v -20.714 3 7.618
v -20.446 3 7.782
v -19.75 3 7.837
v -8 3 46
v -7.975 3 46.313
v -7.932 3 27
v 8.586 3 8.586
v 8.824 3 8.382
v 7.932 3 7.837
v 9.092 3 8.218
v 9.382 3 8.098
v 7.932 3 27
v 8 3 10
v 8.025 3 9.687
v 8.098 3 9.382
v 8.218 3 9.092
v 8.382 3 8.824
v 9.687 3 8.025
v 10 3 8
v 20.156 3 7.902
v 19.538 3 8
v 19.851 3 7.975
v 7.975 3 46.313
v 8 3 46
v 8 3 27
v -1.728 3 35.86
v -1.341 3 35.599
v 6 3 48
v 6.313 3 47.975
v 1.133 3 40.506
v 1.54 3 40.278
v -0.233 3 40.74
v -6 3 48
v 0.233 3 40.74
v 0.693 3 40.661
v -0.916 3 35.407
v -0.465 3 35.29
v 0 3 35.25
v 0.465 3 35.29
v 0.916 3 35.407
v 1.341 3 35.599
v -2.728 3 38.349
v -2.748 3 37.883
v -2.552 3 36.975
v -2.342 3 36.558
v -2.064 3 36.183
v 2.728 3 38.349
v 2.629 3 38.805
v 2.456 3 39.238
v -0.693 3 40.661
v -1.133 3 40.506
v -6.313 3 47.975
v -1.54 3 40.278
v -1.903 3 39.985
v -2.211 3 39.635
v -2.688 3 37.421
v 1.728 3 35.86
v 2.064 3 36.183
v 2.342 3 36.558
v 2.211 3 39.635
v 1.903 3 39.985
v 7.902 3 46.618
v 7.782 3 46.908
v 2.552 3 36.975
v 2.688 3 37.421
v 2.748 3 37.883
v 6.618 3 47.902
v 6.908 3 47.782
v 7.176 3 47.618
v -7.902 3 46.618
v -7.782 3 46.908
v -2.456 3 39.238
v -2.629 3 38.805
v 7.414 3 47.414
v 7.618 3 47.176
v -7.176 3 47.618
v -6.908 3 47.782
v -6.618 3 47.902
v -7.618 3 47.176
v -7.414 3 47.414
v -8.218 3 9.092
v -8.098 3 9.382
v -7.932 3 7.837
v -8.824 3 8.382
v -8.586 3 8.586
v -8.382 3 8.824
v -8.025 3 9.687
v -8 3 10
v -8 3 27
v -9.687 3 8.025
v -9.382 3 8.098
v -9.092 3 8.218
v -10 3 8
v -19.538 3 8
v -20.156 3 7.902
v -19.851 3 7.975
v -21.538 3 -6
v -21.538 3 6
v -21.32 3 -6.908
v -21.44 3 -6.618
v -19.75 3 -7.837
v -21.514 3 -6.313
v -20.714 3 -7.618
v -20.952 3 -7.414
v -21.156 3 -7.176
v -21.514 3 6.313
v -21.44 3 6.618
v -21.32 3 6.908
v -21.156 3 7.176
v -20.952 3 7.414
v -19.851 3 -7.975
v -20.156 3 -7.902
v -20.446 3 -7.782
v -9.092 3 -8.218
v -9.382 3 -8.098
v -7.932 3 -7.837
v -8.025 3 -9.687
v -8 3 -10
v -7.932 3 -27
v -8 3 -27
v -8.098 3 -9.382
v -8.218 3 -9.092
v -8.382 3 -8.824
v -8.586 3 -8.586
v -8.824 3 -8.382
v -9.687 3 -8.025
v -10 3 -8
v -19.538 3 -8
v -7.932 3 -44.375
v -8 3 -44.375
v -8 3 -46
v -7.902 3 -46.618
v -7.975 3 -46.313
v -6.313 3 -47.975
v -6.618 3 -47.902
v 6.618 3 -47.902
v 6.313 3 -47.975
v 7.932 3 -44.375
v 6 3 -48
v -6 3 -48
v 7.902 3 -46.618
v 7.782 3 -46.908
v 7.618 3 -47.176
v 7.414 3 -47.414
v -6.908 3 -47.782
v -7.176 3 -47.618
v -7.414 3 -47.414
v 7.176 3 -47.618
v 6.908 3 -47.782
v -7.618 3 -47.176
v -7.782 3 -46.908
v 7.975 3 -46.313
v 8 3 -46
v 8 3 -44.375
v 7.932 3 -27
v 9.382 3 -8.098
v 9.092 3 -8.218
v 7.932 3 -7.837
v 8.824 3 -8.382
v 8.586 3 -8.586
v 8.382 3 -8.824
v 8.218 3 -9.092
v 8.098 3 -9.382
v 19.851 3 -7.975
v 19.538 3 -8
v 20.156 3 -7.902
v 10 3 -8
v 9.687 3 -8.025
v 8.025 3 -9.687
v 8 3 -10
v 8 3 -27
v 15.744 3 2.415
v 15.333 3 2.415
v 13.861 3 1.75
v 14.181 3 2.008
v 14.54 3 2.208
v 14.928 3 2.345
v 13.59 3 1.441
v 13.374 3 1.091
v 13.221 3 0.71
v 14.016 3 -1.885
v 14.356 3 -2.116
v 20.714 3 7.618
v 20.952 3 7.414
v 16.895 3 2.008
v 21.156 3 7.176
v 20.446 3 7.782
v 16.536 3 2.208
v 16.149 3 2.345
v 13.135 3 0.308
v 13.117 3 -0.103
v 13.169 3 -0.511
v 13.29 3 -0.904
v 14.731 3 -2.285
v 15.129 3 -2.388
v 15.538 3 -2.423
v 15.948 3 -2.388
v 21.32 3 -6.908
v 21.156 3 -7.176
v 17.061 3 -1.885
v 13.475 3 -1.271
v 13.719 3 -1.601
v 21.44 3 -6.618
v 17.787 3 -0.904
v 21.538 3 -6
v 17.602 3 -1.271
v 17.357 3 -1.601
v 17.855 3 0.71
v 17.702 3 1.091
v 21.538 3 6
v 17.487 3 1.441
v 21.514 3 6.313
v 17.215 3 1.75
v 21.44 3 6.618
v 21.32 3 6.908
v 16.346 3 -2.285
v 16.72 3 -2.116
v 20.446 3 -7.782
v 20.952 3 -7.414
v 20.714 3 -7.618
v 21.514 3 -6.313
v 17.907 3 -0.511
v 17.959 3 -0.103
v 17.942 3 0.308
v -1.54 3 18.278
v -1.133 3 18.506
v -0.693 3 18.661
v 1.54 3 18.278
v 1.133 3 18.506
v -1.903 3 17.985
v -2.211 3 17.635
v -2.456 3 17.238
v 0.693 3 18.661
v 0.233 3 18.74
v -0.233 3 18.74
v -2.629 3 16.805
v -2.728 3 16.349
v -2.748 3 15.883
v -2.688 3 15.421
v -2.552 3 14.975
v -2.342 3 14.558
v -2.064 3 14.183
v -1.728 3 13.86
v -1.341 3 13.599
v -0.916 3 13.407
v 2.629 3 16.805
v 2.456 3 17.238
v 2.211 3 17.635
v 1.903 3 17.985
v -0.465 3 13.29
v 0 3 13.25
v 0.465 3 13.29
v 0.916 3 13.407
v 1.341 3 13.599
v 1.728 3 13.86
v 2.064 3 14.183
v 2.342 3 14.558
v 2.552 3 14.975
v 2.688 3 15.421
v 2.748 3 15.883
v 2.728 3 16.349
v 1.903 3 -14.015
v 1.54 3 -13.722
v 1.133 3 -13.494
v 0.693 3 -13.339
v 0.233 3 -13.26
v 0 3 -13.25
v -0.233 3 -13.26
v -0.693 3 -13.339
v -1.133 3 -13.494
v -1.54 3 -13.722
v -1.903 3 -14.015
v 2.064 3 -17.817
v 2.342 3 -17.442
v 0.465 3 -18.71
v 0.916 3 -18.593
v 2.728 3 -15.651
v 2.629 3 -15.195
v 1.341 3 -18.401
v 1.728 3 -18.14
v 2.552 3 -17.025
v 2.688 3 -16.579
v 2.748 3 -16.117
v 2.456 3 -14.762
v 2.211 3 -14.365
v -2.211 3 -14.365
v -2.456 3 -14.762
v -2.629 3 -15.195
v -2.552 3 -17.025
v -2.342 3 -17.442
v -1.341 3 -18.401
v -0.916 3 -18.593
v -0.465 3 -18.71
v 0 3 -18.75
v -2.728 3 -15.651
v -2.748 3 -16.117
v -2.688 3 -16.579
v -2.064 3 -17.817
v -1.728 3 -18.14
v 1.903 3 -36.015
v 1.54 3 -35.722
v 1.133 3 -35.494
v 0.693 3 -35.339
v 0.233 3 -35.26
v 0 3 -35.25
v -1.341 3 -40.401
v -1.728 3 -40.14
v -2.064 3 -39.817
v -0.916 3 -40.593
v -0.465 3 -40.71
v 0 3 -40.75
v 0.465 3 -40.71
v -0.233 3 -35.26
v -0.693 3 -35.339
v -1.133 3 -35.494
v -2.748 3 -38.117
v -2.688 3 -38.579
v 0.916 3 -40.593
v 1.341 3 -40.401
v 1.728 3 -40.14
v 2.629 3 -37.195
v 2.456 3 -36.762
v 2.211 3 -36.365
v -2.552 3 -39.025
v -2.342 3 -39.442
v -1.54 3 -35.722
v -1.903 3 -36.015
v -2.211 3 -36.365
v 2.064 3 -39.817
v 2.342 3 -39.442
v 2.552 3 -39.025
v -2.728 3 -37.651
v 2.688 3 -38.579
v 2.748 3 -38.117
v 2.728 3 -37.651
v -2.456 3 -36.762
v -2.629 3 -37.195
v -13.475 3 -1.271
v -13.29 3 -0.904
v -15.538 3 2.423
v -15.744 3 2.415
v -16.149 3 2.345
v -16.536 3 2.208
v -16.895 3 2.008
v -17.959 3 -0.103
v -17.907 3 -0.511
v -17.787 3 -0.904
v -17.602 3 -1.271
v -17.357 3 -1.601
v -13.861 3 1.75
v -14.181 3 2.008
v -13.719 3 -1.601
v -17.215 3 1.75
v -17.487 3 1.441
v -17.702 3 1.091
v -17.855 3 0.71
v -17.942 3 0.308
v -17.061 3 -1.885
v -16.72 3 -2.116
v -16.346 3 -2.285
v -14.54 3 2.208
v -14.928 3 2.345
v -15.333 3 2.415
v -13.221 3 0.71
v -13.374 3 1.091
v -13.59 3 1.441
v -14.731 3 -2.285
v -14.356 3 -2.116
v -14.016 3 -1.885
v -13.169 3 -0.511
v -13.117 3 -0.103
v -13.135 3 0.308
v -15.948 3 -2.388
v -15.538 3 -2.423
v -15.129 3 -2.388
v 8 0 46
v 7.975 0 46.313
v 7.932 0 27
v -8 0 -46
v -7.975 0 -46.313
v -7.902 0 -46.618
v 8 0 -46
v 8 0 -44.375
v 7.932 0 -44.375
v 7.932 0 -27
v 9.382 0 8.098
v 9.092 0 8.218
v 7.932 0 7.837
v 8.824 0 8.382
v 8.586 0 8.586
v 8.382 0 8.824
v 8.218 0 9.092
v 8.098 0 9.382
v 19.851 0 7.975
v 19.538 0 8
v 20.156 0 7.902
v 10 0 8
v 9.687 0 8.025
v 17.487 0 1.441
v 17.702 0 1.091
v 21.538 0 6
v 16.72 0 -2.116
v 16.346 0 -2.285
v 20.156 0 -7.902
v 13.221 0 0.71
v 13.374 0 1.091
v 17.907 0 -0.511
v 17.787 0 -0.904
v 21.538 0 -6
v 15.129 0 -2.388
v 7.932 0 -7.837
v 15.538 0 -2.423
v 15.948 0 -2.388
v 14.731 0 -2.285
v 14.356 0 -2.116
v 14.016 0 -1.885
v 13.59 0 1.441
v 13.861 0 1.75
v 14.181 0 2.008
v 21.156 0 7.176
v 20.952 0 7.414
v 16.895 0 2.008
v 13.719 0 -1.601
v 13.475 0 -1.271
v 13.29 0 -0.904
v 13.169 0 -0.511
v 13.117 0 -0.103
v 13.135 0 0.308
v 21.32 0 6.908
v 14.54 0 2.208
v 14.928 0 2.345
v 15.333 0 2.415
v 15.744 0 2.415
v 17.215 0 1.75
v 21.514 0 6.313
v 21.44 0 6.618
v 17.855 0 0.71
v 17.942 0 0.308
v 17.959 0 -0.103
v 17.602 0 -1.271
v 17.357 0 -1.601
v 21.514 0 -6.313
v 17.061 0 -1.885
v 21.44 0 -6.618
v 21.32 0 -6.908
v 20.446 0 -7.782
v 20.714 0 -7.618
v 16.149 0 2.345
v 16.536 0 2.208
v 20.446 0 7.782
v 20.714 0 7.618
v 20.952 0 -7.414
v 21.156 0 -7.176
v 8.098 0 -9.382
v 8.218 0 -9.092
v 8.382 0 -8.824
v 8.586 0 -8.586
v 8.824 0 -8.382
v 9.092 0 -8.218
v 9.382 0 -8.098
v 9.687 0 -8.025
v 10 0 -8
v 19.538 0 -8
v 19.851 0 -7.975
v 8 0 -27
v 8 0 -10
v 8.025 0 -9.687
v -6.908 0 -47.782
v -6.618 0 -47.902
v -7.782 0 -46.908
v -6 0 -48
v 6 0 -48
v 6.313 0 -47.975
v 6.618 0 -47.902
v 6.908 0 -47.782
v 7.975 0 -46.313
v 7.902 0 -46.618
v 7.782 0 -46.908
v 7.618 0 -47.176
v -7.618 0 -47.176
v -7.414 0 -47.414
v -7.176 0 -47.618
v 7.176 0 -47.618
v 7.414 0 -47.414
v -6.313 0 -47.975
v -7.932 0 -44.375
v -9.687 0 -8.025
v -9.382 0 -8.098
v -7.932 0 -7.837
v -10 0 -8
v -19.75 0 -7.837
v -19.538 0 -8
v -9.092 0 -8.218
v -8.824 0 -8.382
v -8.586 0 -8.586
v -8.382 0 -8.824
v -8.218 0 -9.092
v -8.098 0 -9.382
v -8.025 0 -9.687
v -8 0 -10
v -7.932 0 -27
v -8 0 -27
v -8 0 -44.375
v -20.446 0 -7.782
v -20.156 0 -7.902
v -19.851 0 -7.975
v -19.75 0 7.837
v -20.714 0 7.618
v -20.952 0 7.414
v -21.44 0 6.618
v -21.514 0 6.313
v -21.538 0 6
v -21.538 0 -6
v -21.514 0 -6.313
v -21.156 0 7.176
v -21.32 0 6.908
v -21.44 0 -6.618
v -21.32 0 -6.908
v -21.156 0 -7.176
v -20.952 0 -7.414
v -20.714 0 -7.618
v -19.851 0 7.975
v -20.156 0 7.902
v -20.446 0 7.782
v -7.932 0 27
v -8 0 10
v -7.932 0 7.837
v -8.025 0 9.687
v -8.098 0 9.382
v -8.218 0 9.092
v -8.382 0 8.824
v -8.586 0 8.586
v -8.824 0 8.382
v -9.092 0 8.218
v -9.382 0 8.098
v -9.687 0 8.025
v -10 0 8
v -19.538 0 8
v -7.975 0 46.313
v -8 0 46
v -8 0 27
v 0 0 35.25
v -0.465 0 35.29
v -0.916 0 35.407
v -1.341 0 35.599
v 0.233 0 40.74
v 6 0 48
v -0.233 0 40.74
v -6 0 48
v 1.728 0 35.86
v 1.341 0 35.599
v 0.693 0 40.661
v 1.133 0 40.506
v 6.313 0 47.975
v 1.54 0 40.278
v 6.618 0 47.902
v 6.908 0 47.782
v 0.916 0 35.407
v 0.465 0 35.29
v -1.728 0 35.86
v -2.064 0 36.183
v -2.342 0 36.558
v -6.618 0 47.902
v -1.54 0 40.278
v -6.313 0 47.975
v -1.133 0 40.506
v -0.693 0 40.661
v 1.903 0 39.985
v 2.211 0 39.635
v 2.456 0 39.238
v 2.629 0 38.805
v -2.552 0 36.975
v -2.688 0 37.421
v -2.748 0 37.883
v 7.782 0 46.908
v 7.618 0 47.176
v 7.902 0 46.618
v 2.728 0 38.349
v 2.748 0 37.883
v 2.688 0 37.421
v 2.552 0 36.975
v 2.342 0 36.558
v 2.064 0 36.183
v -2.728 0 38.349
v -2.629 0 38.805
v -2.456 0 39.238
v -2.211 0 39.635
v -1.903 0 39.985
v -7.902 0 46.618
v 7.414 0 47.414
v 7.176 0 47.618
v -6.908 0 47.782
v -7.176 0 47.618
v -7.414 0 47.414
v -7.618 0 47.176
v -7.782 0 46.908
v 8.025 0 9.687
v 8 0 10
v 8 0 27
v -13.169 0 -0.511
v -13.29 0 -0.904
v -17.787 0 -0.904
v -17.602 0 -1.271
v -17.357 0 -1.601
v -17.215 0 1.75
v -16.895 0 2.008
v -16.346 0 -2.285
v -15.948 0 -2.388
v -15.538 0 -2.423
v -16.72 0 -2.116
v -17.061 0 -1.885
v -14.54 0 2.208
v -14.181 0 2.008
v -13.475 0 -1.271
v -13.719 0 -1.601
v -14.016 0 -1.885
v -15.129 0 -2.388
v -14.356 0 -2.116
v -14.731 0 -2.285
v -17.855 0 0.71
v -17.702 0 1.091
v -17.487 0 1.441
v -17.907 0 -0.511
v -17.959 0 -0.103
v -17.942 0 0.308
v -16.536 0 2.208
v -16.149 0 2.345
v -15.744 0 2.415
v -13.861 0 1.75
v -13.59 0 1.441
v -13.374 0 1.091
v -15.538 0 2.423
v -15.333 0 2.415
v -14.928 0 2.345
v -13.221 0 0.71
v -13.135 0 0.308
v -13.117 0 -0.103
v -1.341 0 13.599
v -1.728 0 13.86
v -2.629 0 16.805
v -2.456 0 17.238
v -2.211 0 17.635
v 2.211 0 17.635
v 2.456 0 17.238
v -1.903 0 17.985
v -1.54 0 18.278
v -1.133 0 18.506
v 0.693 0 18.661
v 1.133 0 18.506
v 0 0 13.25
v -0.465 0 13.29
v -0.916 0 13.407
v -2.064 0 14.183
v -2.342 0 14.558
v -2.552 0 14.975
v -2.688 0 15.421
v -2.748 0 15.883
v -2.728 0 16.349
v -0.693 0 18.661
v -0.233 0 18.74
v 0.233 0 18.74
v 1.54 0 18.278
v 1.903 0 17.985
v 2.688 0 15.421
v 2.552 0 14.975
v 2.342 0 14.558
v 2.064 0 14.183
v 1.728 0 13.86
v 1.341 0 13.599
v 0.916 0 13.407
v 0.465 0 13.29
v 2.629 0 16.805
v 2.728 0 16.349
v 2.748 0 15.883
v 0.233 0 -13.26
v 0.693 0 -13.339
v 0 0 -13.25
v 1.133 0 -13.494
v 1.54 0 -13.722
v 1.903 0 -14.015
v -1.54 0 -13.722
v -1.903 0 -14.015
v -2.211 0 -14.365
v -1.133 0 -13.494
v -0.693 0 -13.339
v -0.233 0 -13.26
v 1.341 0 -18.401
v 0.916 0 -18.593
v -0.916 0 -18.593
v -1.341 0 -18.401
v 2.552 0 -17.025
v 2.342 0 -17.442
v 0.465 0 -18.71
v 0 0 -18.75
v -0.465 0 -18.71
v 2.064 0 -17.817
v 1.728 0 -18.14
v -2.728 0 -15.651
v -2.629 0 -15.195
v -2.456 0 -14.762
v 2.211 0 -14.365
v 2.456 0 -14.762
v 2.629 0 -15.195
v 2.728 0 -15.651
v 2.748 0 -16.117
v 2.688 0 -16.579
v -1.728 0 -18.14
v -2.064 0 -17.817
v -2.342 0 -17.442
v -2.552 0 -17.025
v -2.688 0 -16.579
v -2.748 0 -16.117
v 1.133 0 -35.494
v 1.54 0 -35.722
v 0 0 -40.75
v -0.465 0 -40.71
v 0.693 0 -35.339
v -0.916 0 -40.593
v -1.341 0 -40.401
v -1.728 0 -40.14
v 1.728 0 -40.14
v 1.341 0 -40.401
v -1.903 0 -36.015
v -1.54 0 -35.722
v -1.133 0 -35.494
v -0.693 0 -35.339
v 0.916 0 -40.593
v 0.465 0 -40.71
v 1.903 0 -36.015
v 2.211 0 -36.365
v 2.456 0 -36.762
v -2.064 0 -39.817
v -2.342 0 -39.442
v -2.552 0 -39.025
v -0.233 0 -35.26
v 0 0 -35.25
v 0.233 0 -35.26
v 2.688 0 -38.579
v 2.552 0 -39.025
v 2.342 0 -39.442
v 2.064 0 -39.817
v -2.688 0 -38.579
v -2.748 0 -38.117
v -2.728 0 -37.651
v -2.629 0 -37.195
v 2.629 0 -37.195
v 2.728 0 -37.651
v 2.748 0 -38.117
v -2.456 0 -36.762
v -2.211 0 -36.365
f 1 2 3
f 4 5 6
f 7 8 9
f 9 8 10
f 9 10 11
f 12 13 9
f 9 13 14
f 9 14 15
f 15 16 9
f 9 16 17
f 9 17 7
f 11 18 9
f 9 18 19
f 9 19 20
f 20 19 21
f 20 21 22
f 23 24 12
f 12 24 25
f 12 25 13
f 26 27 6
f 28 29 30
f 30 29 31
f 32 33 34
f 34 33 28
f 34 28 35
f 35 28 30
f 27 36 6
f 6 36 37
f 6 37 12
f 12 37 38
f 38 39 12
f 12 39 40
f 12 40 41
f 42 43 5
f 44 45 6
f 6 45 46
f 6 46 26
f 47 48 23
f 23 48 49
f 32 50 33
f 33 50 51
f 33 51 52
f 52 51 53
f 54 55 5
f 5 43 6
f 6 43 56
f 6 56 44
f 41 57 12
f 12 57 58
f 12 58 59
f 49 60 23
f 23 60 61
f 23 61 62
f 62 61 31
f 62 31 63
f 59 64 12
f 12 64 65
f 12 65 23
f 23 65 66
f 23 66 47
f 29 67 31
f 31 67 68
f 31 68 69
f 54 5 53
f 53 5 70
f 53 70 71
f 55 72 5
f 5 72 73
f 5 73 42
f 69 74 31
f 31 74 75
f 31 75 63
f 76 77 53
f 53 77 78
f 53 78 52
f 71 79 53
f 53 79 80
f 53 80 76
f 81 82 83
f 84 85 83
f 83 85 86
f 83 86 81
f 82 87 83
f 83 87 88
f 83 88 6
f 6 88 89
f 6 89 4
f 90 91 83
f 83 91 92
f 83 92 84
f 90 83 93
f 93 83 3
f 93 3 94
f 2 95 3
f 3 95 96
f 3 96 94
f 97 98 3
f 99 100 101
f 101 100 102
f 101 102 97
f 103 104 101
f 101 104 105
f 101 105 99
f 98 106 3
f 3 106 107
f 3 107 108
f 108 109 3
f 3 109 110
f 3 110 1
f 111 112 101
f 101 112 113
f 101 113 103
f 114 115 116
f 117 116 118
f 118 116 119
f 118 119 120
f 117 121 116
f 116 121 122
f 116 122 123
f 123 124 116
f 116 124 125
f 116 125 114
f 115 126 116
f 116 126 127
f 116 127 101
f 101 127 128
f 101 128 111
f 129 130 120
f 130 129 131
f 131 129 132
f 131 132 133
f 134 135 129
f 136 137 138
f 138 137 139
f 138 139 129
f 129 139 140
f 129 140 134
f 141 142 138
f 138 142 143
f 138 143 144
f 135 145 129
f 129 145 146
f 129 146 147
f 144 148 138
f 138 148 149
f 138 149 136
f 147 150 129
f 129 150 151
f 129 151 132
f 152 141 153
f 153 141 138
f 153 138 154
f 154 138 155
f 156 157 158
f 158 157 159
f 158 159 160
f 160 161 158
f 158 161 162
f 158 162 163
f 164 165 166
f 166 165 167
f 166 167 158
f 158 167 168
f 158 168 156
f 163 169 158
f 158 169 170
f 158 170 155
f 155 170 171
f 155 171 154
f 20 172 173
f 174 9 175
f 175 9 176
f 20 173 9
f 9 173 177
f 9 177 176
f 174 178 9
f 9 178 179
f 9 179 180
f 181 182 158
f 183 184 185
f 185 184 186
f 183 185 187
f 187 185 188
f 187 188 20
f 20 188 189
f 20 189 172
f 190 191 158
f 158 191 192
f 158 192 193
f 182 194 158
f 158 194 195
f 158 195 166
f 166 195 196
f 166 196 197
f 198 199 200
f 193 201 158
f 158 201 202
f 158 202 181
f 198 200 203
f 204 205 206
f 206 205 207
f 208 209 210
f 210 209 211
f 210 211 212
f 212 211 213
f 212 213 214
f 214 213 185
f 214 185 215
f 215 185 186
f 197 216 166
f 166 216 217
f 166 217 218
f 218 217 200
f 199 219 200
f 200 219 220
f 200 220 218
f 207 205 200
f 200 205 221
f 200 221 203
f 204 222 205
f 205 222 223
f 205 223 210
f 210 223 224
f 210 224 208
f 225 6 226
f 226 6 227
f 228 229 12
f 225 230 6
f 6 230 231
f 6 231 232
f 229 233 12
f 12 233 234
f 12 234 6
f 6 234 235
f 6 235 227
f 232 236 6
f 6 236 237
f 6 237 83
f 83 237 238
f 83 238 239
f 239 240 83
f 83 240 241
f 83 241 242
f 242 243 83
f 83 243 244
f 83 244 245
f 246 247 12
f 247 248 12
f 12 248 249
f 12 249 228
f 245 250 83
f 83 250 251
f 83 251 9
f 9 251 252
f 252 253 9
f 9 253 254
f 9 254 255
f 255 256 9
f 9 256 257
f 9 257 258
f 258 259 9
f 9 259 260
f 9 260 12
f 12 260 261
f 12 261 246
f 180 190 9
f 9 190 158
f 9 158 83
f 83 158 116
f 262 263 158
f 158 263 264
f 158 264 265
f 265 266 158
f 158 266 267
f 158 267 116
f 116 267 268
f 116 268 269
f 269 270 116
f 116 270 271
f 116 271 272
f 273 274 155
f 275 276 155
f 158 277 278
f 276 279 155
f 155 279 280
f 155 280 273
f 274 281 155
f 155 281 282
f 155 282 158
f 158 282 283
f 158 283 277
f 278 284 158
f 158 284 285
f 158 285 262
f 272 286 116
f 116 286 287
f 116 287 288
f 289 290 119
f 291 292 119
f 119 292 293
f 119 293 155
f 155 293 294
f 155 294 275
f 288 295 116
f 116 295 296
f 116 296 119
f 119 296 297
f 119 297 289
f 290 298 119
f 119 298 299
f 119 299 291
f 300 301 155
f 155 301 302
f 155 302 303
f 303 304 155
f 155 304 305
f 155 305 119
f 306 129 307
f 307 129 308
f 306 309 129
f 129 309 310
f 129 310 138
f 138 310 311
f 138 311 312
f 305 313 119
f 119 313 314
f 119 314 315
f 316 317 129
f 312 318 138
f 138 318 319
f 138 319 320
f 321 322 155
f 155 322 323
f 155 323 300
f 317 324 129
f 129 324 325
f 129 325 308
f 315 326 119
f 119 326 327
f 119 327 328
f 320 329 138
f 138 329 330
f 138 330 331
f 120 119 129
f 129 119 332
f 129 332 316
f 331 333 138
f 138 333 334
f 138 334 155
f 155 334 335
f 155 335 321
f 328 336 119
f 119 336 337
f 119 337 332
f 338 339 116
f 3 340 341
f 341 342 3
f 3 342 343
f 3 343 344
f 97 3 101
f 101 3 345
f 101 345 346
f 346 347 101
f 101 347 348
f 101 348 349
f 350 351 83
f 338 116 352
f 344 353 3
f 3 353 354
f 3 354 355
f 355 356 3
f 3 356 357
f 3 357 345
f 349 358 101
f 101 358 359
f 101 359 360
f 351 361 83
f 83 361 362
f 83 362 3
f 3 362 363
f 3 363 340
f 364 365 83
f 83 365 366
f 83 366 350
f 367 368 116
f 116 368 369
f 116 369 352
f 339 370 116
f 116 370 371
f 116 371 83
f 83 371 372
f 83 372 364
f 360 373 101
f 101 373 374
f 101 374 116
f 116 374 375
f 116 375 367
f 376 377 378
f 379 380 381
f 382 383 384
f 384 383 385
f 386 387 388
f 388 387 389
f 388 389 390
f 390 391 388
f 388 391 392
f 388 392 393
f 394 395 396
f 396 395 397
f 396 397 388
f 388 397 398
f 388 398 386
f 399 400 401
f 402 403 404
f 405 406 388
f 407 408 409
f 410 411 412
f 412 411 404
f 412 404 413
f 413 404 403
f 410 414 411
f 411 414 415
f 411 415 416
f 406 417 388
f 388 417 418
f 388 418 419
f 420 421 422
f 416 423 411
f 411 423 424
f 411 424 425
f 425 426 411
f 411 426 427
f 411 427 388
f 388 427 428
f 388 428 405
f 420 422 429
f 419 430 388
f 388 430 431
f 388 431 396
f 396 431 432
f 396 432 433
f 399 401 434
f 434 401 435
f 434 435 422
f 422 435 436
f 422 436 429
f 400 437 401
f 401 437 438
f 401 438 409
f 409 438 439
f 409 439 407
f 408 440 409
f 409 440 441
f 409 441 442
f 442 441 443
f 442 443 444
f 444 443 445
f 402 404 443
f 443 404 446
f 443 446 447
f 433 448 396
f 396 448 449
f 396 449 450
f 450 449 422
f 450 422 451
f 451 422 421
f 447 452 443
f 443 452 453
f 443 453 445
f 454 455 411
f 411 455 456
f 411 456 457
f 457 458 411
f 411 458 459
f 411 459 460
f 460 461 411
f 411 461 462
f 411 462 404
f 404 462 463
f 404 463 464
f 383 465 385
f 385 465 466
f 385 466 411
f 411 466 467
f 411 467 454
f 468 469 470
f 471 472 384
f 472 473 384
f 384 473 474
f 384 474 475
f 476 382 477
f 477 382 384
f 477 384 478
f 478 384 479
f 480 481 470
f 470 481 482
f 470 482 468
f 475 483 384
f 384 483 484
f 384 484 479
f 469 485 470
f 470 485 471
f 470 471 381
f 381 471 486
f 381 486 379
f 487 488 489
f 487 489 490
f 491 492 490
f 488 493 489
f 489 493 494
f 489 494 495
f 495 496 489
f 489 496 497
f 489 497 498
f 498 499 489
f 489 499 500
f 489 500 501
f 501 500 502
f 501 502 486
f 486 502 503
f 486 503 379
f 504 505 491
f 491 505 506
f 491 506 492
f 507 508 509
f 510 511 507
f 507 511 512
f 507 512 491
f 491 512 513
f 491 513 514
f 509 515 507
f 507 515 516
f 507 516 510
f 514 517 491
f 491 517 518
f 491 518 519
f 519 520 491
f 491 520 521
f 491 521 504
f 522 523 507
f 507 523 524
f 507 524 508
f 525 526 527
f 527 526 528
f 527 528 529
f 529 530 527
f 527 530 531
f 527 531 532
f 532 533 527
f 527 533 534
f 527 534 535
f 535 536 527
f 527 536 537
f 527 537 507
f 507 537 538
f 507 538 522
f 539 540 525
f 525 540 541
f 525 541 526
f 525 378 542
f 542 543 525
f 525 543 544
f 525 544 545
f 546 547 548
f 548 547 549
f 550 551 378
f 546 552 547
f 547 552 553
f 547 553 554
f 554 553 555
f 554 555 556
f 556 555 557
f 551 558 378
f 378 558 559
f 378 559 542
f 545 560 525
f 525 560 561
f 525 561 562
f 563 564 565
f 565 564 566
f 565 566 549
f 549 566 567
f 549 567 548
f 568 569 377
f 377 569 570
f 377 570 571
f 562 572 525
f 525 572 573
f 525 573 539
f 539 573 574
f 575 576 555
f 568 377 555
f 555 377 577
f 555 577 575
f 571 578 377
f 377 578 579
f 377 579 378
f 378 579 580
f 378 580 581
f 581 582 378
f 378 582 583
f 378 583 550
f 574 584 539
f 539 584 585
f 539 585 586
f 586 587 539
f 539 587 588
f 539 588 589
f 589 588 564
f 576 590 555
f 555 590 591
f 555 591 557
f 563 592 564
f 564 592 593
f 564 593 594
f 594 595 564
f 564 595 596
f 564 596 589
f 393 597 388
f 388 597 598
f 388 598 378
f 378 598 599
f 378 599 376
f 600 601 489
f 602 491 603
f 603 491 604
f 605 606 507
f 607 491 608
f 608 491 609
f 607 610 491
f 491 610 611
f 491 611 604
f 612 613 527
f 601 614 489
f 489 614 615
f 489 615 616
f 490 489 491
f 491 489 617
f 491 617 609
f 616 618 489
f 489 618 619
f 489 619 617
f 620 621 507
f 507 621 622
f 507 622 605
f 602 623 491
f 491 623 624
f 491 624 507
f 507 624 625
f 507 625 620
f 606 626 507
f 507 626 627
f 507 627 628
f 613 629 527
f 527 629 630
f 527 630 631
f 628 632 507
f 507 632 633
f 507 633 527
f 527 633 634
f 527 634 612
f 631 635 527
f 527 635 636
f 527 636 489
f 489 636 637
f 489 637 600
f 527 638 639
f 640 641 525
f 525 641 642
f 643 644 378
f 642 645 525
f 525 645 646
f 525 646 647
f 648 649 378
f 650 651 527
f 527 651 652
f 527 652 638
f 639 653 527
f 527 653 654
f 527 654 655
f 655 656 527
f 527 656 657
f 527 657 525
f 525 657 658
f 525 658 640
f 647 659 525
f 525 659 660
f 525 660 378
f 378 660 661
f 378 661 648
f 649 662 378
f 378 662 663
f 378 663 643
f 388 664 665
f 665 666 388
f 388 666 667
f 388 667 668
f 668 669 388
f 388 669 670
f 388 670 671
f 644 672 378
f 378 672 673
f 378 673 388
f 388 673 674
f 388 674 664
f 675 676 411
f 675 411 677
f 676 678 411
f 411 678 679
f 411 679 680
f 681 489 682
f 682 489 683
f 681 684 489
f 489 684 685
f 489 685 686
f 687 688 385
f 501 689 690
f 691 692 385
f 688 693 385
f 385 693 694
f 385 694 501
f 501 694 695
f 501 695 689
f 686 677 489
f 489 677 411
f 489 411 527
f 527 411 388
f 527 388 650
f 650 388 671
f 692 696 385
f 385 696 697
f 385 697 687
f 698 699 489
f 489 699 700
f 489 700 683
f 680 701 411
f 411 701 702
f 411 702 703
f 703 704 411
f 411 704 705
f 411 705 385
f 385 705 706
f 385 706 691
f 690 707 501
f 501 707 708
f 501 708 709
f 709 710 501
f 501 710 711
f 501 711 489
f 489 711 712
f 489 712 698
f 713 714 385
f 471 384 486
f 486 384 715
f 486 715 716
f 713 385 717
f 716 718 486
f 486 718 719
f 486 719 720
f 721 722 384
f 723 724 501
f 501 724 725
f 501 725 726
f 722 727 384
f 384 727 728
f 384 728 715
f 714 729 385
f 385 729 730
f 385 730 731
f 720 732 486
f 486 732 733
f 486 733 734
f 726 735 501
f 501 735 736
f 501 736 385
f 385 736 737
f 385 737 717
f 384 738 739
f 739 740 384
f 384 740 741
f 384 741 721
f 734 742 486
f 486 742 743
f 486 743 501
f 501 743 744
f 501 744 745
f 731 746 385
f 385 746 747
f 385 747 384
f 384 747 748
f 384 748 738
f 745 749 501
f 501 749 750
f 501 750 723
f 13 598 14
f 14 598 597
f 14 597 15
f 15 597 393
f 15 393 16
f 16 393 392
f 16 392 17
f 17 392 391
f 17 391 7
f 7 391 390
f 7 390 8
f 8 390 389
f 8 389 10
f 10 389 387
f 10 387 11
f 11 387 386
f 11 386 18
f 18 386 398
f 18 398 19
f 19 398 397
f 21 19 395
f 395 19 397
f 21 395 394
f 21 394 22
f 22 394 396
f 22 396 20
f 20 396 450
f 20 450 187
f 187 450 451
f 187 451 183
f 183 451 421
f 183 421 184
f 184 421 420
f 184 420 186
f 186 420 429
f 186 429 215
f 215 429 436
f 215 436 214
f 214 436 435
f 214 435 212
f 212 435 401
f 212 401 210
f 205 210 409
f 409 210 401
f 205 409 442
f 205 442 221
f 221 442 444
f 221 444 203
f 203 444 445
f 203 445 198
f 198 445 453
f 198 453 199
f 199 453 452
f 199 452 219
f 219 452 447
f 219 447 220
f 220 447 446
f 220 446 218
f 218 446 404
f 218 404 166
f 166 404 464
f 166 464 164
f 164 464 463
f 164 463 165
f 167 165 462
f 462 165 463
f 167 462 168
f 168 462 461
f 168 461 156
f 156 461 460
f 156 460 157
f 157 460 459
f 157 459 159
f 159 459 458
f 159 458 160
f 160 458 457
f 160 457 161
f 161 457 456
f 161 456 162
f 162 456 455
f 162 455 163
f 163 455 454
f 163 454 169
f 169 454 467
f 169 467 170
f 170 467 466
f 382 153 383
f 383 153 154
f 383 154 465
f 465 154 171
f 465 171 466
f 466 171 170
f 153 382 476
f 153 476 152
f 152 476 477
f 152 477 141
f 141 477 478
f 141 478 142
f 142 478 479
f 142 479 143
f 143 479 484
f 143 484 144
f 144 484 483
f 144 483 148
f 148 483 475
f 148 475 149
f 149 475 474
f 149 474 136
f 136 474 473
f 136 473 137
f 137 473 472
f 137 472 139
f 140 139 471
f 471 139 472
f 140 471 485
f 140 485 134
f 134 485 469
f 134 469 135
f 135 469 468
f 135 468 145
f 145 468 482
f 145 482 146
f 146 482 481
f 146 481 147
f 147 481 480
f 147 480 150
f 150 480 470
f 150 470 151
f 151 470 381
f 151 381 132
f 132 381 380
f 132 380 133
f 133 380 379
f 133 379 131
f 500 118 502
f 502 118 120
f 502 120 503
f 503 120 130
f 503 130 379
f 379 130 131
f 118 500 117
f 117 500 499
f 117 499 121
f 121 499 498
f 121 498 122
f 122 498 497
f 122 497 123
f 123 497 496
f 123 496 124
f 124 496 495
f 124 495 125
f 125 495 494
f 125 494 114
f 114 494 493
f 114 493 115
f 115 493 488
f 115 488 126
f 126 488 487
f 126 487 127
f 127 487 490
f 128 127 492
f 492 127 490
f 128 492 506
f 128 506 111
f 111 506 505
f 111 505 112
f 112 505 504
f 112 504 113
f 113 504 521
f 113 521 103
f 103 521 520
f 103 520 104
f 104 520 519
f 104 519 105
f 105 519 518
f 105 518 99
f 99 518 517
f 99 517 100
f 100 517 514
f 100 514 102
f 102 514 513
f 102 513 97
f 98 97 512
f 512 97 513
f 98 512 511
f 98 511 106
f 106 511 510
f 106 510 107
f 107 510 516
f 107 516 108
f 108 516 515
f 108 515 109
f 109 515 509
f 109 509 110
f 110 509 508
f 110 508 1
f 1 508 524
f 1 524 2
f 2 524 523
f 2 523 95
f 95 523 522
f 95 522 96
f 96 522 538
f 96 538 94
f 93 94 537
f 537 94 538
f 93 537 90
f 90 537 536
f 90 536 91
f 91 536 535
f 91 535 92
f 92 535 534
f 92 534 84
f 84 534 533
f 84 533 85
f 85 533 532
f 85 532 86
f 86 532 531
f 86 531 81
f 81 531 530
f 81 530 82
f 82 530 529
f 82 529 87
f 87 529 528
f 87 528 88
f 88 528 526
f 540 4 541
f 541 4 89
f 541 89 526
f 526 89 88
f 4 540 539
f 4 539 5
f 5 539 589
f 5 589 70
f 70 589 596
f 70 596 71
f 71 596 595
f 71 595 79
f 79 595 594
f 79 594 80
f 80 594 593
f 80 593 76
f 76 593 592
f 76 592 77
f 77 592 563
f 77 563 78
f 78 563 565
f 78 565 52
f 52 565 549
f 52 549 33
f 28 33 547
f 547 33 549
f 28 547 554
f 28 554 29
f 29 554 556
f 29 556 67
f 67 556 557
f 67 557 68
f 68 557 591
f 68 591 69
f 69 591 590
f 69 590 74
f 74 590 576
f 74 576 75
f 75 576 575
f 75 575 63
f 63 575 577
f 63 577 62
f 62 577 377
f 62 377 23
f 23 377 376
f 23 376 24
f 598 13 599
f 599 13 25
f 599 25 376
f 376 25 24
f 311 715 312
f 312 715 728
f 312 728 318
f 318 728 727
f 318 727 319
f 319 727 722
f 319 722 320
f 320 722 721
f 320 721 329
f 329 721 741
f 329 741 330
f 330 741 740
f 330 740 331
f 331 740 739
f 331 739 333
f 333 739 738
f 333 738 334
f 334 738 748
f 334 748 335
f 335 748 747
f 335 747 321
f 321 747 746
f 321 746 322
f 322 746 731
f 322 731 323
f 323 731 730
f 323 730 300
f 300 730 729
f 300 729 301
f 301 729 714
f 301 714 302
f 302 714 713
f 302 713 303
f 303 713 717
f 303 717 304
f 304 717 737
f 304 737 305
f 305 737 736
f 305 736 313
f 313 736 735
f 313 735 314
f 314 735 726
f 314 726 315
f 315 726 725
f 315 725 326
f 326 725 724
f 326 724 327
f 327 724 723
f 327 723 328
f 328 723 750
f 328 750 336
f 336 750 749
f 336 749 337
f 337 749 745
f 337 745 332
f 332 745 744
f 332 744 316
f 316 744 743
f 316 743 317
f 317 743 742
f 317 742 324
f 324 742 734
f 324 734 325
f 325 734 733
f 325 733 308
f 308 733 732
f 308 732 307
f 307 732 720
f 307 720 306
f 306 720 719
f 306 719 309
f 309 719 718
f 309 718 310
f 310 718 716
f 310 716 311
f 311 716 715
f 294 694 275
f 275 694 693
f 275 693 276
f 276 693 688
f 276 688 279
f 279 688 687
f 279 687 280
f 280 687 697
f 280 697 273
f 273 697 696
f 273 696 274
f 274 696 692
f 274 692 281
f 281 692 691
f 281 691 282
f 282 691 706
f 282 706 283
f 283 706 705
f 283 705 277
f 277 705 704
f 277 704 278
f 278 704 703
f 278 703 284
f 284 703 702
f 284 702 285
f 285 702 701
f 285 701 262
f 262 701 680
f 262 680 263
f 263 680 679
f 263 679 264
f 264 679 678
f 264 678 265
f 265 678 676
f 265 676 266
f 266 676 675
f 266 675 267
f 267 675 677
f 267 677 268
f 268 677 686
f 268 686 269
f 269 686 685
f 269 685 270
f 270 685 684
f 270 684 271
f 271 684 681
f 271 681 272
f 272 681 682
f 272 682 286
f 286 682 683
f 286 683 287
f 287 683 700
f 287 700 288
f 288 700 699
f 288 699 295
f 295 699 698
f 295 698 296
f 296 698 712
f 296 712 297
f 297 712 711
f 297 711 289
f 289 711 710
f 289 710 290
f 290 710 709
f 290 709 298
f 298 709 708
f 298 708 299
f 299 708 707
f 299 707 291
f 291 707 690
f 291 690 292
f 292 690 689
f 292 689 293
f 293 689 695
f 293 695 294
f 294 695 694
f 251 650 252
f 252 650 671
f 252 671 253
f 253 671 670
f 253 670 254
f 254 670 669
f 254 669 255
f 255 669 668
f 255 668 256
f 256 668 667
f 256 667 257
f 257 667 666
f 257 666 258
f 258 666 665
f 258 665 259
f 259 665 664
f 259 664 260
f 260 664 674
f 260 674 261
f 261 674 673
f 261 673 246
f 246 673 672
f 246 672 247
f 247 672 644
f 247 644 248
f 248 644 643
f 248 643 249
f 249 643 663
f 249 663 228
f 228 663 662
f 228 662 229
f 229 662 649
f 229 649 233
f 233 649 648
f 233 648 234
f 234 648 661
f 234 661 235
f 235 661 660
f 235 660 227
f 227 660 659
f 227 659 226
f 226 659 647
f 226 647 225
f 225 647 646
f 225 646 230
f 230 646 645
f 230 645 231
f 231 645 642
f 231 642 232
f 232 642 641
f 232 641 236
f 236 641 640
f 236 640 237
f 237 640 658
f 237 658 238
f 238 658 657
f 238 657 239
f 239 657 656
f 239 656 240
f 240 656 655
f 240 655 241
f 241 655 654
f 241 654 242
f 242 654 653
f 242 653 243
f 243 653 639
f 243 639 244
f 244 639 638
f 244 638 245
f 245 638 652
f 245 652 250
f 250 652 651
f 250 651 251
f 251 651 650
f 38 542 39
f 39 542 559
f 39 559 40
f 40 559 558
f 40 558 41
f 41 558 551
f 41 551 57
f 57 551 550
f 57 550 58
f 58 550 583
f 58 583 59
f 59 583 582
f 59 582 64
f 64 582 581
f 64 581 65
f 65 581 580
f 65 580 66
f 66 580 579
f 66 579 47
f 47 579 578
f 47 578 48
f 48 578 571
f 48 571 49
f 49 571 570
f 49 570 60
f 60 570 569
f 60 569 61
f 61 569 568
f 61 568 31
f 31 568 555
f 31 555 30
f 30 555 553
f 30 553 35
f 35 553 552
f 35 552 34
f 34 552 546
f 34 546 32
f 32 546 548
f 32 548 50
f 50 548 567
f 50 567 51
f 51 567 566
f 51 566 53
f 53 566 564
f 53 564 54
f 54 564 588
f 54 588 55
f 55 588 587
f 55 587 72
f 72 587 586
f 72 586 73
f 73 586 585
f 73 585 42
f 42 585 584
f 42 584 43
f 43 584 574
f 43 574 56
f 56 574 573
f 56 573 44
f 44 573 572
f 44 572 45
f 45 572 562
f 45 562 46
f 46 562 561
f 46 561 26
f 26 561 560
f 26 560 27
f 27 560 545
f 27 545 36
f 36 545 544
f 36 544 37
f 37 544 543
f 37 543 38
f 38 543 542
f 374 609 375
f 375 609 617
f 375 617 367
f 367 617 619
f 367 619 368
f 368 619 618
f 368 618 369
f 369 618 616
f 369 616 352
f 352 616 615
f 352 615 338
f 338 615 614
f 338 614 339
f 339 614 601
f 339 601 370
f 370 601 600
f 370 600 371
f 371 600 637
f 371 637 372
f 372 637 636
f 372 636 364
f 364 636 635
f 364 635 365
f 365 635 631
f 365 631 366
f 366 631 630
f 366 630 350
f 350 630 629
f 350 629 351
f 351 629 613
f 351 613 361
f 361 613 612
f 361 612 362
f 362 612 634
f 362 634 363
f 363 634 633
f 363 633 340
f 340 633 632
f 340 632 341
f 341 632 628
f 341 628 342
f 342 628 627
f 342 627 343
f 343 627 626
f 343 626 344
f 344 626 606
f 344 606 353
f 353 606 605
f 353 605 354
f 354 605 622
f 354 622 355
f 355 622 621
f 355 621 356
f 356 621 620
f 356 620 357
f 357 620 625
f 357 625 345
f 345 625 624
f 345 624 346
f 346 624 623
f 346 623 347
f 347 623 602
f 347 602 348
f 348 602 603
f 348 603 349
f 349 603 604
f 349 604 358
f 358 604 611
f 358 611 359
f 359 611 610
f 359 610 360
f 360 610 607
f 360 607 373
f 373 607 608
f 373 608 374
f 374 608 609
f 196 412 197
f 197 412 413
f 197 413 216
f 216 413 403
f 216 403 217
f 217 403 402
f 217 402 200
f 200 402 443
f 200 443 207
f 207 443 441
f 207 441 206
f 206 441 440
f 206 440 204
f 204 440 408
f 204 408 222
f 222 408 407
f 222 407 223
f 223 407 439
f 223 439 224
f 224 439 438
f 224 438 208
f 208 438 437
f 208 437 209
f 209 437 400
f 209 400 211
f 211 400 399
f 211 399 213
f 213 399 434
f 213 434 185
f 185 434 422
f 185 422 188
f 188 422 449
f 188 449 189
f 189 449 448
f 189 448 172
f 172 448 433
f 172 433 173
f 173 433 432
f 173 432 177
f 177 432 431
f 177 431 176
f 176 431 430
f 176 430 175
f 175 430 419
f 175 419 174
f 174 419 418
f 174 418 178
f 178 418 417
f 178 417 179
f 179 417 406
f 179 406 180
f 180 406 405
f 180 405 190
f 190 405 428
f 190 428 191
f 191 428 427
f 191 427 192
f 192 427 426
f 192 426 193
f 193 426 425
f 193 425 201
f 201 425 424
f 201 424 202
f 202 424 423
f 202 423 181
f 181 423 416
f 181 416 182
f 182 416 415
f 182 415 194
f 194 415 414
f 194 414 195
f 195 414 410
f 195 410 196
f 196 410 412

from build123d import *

# Parameters (mm, degrees)
SKETCH_1_R      = 2.75
SKETCH_1_R_2    = 2.423316248
EXTRUDE_1_DEPTH = 3


with BuildPart() as part:
    # 草图1 → 凸台-拉伸1 (new body)
    with BuildSketch(Plane(origin=(0, 0, 0), x_dir=(1, 0, 0), z_dir=(0, 1, 0))):
        with BuildLine():
            Line((-6, 48), (6, 48))
            ThreePointArc((6, 48), (7.414213562, 47.414213562), (8, 46))
            Line((8, 46), (8, 10))
            ThreePointArc((8, 10), (8.585786438, 8.585786438), (10, 8))
            Line((10, 8), (19.538252224, 8))
            ThreePointArc((19.538252224, 8), (20.952465786, 7.414213562), (21.538252224, 6))
            Line((21.538252224, 6), (21.538252224, -6))
            ThreePointArc((21.538252224, -6), (20.952465786, -7.414213562), (19.538252224, -8))
            Line((19.538252224, -8), (10, -8))
            ThreePointArc((10, -8), (8.585786438, -8.585786438), (8, -10))
            Line((8, -10), (8, -46))
            ThreePointArc((8, -46), (7.414213562, -47.414213562), (6, -48))
            Line((6, -48), (-6, -48))
            ThreePointArc((-6, -48), (-7.414213562, -47.414213562), (-8, -46))
            Line((-8, -46), (-8, -10))
            ThreePointArc((-8, -10), (-8.585786438, -8.585786438), (-10, -8))
            Line((-10, -8), (-19.538252224, -8))
            ThreePointArc((-19.538252224, -8), (-20.952465786, -7.414213562), (-21.538252224, -6))
            Line((-21.538252224, -6), (-21.538252224, 6))
            ThreePointArc((-21.538252224, 6), (-20.952465786, 7.414213562), (-19.538252224, 8))
            Line((-19.538252224, 8), (-10, 8))
            ThreePointArc((-10, 8), (-8.585786438, 8.585786438), (-8, 10))
            Line((-8, 10), (-8, 46))
            ThreePointArc((-8, 46), (-7.414213562, 47.414213562), (-6, 48))
        make_face()
        with Locations(Location((0, 38, 0), (0, 0, 270))):
            Circle(SKETCH_1_R, mode=Mode.SUBTRACT)
        with Locations(Location((0, 16, 0), (0, 0, 270))):
            Circle(SKETCH_1_R, mode=Mode.SUBTRACT)
        with Locations(Location((0, -16, 0), (0, 0, 90))):
            Circle(SKETCH_1_R, mode=Mode.SUBTRACT)
        with Locations(Location((0, -38, 0), (0, 0, 90))):
            Circle(SKETCH_1_R, mode=Mode.SUBTRACT)
        with Locations(Location((-15.538252224, 0, 0), (0, 0, 270))):
            Circle(SKETCH_1_R_2, mode=Mode.SUBTRACT)
        with Locations(Location((15.538252224, 0, 0), (0, 0, 90))):
            Circle(SKETCH_1_R_2, mode=Mode.SUBTRACT)
    extrude(amount=EXTRUDE_1_DEPTH)


solid = part.part
